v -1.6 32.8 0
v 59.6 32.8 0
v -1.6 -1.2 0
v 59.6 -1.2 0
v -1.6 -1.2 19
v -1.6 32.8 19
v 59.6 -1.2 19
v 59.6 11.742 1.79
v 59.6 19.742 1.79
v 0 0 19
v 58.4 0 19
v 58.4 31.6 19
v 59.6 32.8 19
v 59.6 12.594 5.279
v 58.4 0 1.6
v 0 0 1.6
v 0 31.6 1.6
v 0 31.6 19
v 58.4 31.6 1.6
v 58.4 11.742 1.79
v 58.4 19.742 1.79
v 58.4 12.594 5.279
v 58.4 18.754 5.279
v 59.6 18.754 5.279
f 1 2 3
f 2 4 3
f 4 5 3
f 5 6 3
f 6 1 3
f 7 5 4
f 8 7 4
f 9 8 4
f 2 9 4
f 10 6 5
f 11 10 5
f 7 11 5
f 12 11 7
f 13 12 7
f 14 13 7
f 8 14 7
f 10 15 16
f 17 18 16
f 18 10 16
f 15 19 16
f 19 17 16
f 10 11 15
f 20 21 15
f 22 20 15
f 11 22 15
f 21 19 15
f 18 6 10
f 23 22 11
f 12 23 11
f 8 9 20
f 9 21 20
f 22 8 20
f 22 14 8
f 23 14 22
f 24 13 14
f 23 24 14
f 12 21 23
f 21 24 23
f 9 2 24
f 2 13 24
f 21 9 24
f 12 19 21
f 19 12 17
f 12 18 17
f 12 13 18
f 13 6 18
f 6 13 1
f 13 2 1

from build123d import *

# Parameters (mm, degrees)
IZIM1_W                     = 58.4
IZIM1_H                     = 31.6
Y_KSEKLIK_EKSTR_ZYON1_DEPTH = 19
IZIM2_W                     = 58.4
IZIM2_H                     = 31.6
Y_KSEKLIK_EKSTR_ZYON2_DEPTH = 1.6
KES_EKSTR_ZYON2_START       = 59.6
KES_EKSTR_ZYON2_DEPTH       = 3


with BuildPart() as part:
    # Çizim1 → Yükseklik-Ekstrüzyon1 (new body)
    with BuildSketch(Plane.XY):
        Polygon((0, 32.8), (59.6, 32.8), (59.6, -1.2), (-1.6, -1.2), (-1.6, 32.8), align=None)
        with Locations((29.2, 15.8)):
            Rectangle(IZIM1_W, IZIM1_H, mode=Mode.SUBTRACT)
    extrude(amount=Y_KSEKLIK_EKSTR_ZYON1_DEPTH)

    # Çizim2 → Yükseklik-Ekstrüzyon2 (add)
    with BuildSketch(Plane.XY):
        with Locations((29.2, 15.8)):
            Rectangle(IZIM2_W, IZIM2_H)
    extrude(amount=Y_KSEKLIK_EKSTR_ZYON2_DEPTH)

    # Çizim3 → Kes-Ekstrüzyon2 (cut)
    with BuildSketch(Plane(origin=(0, 0, 0), x_dir=(0, 0, -1), z_dir=(1, 0, 0)).offset(KES_EKSTR_ZYON2_START)):
        Polygon((-1.790149403, 19.741982838), (-1.790149403, 11.741982838), (-5.27887078, 12.594196568), (-5.27887078, 18.754449839), align=None)
    extrude(amount=-KES_EKSTR_ZYON2_DEPTH, mode=Mode.SUBTRACT)


solid = part.part
